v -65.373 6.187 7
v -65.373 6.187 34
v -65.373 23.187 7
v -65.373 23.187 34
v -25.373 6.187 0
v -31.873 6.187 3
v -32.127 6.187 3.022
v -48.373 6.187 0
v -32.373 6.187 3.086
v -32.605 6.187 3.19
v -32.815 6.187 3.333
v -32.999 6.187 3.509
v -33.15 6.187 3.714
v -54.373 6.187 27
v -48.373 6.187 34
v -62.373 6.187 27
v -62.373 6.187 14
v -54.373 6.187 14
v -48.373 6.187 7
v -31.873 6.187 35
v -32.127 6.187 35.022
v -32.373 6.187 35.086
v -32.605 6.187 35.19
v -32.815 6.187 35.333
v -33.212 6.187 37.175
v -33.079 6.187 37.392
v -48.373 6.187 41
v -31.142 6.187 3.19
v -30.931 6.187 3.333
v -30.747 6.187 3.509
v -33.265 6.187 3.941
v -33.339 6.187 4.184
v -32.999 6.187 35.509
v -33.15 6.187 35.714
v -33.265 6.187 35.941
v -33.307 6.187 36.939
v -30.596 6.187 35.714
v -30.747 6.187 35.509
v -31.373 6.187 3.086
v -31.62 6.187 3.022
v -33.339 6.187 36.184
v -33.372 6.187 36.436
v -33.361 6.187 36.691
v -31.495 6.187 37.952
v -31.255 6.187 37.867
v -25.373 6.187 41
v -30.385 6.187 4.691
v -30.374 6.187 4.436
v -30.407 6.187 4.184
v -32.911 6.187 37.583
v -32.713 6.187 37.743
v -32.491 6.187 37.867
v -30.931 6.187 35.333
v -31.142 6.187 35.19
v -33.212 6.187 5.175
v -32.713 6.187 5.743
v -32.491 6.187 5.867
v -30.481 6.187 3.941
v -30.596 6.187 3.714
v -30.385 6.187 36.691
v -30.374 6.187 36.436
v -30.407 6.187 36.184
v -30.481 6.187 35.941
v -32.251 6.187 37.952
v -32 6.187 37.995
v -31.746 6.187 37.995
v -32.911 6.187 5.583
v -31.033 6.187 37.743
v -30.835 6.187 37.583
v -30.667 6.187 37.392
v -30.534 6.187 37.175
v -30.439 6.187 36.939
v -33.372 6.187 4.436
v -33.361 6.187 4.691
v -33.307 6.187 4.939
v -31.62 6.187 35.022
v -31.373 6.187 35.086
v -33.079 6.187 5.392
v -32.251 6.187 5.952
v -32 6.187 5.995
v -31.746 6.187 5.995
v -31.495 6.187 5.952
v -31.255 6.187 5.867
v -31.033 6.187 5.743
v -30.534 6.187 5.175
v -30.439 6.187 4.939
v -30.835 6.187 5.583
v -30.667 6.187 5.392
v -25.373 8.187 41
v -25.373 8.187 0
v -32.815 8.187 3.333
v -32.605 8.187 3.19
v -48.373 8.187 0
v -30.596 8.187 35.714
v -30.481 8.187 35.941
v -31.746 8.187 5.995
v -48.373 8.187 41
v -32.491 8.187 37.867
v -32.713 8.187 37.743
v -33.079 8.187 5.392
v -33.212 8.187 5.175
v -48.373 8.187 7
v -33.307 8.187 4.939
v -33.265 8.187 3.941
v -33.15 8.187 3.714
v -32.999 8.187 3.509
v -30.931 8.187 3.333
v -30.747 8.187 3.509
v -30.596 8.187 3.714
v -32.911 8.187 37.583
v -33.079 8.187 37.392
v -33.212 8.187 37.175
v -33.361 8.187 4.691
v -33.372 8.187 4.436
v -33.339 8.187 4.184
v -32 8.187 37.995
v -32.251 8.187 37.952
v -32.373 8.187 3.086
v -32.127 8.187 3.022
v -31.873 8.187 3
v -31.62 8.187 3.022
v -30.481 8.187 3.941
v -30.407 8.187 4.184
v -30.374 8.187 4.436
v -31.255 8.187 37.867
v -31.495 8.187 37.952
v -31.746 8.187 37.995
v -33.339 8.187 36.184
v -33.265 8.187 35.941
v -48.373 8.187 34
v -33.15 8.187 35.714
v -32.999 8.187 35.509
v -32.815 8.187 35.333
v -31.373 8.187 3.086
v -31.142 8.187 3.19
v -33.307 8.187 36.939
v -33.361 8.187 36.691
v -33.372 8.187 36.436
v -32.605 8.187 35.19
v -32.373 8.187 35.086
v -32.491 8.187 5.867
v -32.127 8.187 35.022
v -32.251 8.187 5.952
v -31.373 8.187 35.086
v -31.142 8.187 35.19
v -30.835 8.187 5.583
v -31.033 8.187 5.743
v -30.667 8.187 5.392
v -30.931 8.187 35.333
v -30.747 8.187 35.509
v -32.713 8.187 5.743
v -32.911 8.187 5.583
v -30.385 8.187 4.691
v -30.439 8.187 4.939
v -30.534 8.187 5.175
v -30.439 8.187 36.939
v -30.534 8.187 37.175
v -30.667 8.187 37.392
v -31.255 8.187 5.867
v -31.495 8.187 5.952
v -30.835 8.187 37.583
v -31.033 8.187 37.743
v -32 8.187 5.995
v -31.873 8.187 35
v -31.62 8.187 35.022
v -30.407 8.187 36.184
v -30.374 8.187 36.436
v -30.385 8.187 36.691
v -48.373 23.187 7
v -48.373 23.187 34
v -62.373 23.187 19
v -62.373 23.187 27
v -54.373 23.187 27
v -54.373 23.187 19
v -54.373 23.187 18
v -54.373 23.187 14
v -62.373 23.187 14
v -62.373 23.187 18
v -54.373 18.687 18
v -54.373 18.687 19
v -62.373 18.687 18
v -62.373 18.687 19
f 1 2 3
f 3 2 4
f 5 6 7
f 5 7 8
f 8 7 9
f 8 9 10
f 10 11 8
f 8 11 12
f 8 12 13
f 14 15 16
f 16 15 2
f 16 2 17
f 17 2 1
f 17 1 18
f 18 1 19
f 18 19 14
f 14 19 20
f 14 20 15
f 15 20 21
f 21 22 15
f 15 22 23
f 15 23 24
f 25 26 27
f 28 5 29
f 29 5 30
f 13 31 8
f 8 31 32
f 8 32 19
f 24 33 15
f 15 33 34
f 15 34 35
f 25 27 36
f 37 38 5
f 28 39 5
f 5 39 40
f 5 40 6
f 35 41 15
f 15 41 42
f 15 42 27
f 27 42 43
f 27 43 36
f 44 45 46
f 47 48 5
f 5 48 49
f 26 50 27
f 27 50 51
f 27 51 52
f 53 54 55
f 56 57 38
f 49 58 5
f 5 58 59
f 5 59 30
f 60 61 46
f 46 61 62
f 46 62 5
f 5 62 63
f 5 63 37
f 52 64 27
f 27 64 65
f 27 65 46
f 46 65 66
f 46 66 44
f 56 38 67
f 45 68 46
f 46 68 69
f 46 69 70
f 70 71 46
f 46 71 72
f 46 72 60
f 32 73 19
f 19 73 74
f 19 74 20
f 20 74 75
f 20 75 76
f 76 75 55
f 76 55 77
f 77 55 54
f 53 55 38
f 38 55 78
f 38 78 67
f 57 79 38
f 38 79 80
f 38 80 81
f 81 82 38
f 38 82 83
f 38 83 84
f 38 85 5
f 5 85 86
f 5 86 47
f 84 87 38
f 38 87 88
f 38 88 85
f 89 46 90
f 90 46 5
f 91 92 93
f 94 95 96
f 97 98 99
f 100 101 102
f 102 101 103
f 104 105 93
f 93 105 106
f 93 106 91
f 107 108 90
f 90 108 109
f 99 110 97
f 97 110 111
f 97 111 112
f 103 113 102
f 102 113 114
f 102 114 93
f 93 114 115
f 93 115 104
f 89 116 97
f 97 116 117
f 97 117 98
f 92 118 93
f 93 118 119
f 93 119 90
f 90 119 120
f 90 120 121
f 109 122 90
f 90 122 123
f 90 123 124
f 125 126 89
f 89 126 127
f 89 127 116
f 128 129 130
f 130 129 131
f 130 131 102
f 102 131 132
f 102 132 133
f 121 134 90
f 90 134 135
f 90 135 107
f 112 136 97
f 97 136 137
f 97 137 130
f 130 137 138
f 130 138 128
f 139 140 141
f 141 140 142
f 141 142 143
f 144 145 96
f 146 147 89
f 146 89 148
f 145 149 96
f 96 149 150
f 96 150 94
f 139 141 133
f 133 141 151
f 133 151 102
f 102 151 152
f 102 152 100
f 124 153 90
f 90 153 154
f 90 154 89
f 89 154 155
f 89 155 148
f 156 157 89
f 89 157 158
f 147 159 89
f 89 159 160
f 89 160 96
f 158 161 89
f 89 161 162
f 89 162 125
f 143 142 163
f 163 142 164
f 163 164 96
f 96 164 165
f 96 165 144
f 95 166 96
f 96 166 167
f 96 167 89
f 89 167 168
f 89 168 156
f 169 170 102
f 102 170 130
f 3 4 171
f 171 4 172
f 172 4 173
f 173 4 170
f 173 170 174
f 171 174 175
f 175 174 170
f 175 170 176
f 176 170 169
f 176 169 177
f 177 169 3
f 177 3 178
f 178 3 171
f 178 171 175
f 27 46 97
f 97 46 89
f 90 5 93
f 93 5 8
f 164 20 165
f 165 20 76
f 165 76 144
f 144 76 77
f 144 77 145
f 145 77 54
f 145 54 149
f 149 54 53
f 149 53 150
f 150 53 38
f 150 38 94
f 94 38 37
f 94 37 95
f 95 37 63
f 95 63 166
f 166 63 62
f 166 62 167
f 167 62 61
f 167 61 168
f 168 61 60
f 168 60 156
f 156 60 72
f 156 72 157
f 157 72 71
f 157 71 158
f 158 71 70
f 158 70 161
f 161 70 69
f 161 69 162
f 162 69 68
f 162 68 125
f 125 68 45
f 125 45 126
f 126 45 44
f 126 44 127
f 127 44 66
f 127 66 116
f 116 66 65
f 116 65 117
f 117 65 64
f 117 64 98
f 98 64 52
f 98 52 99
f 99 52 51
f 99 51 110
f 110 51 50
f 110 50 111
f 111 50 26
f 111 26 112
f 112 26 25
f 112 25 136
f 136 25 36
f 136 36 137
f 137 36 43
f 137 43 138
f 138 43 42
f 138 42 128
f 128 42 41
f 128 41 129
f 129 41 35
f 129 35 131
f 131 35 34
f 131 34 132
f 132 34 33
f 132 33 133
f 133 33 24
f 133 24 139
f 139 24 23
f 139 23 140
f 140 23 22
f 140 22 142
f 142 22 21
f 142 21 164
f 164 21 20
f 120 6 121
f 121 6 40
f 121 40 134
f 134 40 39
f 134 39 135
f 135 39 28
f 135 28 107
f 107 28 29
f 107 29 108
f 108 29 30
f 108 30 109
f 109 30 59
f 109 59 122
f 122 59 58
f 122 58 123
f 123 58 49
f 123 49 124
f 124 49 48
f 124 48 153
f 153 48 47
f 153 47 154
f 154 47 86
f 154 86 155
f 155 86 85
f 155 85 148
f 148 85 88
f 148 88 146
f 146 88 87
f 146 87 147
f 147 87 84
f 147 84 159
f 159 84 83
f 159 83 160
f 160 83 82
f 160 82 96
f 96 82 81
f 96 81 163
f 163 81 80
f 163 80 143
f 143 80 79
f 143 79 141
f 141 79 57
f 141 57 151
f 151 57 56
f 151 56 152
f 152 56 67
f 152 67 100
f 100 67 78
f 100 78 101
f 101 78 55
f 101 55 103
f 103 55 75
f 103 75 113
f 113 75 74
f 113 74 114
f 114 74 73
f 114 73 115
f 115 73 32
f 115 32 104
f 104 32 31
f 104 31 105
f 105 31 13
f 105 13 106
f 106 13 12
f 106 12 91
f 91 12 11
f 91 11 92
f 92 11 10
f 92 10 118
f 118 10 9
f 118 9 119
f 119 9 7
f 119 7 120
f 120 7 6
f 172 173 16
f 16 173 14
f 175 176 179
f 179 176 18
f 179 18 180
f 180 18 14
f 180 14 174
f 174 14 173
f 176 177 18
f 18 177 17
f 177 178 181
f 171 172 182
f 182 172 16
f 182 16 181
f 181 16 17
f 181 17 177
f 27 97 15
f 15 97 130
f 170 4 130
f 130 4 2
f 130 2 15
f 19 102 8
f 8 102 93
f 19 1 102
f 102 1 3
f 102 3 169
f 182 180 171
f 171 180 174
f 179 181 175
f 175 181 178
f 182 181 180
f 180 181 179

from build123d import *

# Parameters (mm, degrees)
SALIENTE_EXTRUIR1_DEPTH = 41
CROQUIS2_R              = 1.5
CORTAR_EXTRUIR1_DEPTH   = 2
CORTAR_EXTRUIR2_START   = -17
CROQUIS3_W              = 8
CROQUIS3_H              = 13
CROQUIS3_W_2            = 17
CROQUIS3_H_2            = 7
CORTAR_EXTRUIR2_DEPTH   = 17
CROQUIS4_W              = 8
CROQUIS4_H              = 1
SALIENTE_EXTRUIR2_DEPTH = 4.5


with BuildPart() as part:
    # Croquis1 → Saliente-Extruir1 (new body)
    with BuildSketch(Plane.XY):
        Polygon((-65.37305766, 23.186813187), (-48.37305766, 23.186813187), (-48.37305766, 8.186813187), (-25.37305766, 8.186813187), (-25.37305766, 6.186813187), (-65.37305766, 6.186813187), align=None)
    extrude(amount=SALIENTE_EXTRUIR1_DEPTH)

    # Croquis2 → Cortar-Extruir1 (cut)
    with BuildSketch(Plane.XZ.offset(-6.186813187)):
        with Locations((-31.87305766, 36.5)):
            Circle(CROQUIS2_R)
        with Locations((-31.87305766, 4.5)):
            Circle(CROQUIS2_R)
    extrude(amount=-CORTAR_EXTRUIR1_DEPTH, mode=Mode.SUBTRACT)

    # Croquis3 → Cortar-Extruir2 (cut)
    with BuildSketch(Plane.XZ.offset(-6.186813187).offset(CORTAR_EXTRUIR2_START)):
        with Locations((-58.37305766, 20.5)):
            Rectangle(CROQUIS3_W, CROQUIS3_H)
        with Locations((-56.87305766, 37.5)):
            Rectangle(CROQUIS3_W_2, CROQUIS3_H_2)
        with Locations((-56.87305766, 3.5)):
            Rectangle(CROQUIS3_W_2, CROQUIS3_H_2)
    extrude(amount=CORTAR_EXTRUIR2_DEPTH, mode=Mode.SUBTRACT)

    # Croquis4 → Saliente-Extruir2 (add)
    with BuildSketch(Plane(origin=(0, 23.186813187, 0), x_dir=(1, 0, 0), z_dir=(0, 1, 0))):
        with Locations((-58.37305766, -18.5)):
            Rectangle(CROQUIS4_W, CROQUIS4_H)
    extrude(amount=-SALIENTE_EXTRUIR2_DEPTH)


solid = part.part
